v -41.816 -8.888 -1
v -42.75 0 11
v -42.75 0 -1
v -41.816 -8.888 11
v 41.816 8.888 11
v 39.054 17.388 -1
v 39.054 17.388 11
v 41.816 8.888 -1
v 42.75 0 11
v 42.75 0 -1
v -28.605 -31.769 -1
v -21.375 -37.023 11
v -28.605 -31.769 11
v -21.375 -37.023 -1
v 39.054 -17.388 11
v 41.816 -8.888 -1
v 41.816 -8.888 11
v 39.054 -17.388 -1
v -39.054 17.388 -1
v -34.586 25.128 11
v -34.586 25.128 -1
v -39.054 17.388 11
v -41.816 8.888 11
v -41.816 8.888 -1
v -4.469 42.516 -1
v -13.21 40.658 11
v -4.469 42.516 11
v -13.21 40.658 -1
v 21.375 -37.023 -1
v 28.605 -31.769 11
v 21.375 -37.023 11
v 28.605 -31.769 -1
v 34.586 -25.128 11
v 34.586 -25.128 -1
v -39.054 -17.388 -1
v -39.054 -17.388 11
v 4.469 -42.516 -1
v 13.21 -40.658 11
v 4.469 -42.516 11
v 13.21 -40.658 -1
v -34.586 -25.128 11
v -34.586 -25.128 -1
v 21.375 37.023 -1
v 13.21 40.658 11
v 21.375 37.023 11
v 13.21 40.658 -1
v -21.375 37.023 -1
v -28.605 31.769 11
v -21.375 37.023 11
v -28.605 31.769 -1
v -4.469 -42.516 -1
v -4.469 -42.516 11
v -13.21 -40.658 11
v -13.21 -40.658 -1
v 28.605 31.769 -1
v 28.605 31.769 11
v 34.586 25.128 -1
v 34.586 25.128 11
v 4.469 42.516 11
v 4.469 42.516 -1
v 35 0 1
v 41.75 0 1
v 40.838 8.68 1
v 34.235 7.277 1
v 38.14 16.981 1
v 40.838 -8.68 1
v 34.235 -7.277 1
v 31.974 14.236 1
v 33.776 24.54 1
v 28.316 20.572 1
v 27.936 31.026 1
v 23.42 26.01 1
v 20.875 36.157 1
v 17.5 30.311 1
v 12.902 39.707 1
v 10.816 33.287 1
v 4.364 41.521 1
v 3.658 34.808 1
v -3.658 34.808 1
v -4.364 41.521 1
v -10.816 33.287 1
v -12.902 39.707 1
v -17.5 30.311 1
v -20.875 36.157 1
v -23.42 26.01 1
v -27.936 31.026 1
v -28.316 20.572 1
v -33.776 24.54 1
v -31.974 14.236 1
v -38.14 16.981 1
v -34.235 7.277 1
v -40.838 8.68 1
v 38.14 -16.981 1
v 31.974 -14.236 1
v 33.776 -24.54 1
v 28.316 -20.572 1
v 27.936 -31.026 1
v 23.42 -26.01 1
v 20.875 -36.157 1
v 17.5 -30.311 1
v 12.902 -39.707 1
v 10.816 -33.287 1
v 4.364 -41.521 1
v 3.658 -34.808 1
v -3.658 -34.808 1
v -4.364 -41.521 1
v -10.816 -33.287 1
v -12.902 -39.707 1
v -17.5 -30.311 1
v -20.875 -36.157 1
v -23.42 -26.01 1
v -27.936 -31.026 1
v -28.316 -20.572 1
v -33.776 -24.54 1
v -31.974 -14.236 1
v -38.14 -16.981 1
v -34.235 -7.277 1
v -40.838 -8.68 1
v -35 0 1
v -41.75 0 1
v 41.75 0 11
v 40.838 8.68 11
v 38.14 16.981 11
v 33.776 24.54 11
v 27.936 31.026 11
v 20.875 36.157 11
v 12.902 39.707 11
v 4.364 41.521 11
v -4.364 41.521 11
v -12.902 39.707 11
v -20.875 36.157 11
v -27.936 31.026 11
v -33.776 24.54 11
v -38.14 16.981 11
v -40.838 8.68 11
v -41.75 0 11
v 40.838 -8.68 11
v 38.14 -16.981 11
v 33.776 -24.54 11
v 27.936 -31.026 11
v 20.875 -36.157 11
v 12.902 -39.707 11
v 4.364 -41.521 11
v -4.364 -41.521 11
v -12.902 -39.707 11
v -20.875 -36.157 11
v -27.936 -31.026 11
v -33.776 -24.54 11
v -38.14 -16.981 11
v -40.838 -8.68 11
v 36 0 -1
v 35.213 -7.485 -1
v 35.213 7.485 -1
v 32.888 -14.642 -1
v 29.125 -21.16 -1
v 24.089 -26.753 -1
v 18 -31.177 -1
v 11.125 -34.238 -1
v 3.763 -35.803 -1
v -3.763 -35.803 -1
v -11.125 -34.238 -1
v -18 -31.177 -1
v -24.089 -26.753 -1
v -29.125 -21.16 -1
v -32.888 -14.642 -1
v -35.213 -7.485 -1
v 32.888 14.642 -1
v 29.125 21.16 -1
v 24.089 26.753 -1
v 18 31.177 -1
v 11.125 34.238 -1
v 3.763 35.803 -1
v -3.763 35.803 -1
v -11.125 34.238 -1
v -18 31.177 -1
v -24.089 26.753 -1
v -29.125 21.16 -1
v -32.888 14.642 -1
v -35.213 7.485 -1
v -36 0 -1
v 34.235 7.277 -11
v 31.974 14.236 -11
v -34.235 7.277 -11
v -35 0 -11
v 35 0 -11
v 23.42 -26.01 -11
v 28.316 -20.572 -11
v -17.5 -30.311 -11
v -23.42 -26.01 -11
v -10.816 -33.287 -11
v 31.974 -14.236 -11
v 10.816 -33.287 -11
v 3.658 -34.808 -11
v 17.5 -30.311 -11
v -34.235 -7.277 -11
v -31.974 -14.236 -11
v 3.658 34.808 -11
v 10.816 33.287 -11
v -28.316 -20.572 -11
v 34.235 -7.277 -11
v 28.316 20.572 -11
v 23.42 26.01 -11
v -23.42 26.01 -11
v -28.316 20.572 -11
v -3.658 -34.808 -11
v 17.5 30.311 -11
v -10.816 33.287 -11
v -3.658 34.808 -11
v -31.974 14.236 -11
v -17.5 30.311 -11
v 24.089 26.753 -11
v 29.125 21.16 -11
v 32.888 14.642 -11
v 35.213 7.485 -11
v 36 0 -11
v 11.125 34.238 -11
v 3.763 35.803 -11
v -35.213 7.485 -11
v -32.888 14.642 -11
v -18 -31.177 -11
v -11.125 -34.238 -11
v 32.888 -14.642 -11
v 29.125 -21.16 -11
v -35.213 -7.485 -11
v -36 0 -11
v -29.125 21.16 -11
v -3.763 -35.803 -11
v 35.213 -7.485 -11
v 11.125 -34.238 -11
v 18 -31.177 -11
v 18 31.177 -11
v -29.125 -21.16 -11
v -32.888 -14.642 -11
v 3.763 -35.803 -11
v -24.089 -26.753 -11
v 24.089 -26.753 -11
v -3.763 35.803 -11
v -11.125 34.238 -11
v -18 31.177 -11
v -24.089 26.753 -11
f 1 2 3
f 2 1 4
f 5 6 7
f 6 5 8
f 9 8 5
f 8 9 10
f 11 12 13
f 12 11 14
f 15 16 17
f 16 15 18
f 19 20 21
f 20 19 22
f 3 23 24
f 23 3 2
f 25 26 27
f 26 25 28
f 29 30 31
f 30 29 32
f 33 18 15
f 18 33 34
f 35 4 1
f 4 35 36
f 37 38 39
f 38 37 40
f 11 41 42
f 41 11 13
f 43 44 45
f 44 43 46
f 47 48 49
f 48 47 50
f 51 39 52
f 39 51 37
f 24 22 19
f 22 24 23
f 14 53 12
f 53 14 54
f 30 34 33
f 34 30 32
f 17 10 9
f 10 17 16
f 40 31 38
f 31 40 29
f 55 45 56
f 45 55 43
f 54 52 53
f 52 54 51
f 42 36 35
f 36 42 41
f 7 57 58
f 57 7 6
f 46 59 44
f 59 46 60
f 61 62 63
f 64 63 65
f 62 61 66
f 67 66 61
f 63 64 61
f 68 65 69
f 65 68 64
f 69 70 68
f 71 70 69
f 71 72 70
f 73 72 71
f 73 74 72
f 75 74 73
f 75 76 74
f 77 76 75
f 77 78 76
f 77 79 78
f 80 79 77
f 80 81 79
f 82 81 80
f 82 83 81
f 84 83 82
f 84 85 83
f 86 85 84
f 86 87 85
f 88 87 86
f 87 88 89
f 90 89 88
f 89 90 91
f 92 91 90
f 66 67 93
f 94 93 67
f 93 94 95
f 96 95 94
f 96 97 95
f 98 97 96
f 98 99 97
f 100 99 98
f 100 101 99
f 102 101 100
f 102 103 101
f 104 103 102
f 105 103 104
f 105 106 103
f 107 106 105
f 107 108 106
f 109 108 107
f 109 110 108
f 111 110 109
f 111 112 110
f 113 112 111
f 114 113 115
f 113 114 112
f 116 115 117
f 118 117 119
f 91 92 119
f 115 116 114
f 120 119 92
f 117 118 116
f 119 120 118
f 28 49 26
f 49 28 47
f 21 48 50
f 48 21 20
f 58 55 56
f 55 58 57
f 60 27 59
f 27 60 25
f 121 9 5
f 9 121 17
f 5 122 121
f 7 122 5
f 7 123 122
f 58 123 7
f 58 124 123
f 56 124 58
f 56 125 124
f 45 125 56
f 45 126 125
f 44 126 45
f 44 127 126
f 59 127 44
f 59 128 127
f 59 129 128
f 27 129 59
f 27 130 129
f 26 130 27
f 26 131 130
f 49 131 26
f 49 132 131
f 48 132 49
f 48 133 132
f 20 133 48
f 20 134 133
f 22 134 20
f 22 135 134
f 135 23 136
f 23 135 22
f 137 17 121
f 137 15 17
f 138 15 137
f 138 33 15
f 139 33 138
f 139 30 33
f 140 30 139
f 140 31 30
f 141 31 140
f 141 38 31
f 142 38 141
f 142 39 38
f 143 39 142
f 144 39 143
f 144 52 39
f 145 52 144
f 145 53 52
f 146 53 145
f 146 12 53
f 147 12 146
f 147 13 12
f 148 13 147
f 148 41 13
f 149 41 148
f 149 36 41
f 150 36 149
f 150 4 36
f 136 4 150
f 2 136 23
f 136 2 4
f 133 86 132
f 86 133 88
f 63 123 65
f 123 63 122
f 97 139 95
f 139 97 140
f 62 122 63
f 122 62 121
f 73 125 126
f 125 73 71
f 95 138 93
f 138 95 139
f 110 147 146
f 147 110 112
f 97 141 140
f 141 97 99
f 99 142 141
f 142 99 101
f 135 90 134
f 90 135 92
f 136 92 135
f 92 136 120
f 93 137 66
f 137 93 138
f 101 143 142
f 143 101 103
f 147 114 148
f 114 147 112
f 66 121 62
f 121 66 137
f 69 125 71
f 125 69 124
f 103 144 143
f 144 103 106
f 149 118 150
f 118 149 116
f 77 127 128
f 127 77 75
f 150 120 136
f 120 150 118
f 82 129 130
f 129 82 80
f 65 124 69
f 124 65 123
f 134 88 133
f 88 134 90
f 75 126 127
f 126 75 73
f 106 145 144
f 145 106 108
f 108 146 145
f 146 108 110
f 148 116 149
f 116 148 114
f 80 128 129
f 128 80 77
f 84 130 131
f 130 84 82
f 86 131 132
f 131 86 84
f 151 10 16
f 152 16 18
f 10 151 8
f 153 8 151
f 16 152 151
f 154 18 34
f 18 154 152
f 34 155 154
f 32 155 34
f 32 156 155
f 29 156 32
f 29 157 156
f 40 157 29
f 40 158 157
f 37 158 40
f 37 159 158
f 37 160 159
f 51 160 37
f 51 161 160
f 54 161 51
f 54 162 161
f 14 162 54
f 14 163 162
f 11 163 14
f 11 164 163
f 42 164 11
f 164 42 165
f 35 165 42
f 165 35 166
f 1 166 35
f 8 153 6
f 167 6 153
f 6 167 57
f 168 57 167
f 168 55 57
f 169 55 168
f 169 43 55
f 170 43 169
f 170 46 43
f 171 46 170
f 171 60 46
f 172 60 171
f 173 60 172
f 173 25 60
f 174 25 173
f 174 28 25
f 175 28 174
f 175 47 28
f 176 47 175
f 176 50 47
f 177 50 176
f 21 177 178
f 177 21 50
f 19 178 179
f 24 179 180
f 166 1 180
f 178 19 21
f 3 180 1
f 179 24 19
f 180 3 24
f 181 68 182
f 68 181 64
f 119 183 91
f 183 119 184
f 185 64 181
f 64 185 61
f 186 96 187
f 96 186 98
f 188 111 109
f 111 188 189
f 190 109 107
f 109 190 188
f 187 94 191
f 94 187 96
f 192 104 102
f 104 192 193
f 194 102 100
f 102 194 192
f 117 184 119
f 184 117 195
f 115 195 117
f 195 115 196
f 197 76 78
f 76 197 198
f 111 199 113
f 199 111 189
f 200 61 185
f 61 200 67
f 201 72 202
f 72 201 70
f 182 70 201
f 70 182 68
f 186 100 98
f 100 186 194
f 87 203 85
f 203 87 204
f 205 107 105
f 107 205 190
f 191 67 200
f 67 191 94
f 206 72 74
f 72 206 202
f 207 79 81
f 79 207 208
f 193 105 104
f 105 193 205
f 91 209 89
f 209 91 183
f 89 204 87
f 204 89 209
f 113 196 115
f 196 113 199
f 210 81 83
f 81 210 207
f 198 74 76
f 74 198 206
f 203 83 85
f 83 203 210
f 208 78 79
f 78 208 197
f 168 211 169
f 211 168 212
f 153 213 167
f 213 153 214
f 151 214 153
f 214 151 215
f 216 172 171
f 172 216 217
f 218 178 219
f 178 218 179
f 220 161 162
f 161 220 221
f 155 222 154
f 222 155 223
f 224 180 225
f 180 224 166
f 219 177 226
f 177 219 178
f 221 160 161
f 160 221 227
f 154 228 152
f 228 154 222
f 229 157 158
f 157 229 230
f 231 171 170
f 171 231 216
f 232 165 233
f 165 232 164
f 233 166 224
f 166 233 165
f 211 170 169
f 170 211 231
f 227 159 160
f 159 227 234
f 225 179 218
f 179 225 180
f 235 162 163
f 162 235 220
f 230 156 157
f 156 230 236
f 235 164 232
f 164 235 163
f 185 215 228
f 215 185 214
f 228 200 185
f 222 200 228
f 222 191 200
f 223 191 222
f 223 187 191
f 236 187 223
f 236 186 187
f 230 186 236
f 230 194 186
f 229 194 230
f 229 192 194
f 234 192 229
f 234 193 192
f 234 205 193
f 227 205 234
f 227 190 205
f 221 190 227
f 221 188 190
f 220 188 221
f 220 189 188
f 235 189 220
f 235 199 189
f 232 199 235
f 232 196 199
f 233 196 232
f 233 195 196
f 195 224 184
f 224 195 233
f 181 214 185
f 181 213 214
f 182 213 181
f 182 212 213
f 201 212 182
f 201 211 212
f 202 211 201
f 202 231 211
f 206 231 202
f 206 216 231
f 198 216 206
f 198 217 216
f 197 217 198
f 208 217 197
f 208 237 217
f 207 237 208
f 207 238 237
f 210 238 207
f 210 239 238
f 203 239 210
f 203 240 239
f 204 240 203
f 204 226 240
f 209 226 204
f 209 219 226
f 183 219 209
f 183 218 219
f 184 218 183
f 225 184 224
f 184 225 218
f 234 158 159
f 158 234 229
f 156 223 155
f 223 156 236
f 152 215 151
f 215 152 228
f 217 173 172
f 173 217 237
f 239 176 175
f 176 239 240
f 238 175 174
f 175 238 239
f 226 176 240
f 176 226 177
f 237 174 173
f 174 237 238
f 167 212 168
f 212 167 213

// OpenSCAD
// Input the diameter of your cup
cup_diameter = 83.5;

// Input the inner diameter of your cup (must be smaller than the cup diameter)
inner_cup_diameter = 72.0;

// Change the holder height, if necessary
holder_height = 10;

// Change the bottom holder height, if necessary
holder_height_bottom = 10;

/* [Hidden] */

// Thickness of the walls
wall_thickness = 2;
// Height of the middle plate
plate_height = 2;

module ring(height,diameter,inner_diameter) {
  linear_extrude(height=height, center = true) {
    difference () {
      circle(d=diameter);
      circle(d=inner_diameter);
    };
  };
};

// Upper Holder
translate([0,0,(plate_height + holder_height) / 2]) {
  ring(holder_height, cup_diameter + wall_thickness, cup_diameter);
};

// Middle plate
ring(plate_height, cup_diameter + wall_thickness, inner_cup_diameter - wall_thickness);

// Inside Holder
translate([0,0,-(plate_height + holder_height_bottom) / 2]) {
  ring(holder_height_bottom, inner_cup_diameter, inner_cup_diameter - wall_thickness);
};
